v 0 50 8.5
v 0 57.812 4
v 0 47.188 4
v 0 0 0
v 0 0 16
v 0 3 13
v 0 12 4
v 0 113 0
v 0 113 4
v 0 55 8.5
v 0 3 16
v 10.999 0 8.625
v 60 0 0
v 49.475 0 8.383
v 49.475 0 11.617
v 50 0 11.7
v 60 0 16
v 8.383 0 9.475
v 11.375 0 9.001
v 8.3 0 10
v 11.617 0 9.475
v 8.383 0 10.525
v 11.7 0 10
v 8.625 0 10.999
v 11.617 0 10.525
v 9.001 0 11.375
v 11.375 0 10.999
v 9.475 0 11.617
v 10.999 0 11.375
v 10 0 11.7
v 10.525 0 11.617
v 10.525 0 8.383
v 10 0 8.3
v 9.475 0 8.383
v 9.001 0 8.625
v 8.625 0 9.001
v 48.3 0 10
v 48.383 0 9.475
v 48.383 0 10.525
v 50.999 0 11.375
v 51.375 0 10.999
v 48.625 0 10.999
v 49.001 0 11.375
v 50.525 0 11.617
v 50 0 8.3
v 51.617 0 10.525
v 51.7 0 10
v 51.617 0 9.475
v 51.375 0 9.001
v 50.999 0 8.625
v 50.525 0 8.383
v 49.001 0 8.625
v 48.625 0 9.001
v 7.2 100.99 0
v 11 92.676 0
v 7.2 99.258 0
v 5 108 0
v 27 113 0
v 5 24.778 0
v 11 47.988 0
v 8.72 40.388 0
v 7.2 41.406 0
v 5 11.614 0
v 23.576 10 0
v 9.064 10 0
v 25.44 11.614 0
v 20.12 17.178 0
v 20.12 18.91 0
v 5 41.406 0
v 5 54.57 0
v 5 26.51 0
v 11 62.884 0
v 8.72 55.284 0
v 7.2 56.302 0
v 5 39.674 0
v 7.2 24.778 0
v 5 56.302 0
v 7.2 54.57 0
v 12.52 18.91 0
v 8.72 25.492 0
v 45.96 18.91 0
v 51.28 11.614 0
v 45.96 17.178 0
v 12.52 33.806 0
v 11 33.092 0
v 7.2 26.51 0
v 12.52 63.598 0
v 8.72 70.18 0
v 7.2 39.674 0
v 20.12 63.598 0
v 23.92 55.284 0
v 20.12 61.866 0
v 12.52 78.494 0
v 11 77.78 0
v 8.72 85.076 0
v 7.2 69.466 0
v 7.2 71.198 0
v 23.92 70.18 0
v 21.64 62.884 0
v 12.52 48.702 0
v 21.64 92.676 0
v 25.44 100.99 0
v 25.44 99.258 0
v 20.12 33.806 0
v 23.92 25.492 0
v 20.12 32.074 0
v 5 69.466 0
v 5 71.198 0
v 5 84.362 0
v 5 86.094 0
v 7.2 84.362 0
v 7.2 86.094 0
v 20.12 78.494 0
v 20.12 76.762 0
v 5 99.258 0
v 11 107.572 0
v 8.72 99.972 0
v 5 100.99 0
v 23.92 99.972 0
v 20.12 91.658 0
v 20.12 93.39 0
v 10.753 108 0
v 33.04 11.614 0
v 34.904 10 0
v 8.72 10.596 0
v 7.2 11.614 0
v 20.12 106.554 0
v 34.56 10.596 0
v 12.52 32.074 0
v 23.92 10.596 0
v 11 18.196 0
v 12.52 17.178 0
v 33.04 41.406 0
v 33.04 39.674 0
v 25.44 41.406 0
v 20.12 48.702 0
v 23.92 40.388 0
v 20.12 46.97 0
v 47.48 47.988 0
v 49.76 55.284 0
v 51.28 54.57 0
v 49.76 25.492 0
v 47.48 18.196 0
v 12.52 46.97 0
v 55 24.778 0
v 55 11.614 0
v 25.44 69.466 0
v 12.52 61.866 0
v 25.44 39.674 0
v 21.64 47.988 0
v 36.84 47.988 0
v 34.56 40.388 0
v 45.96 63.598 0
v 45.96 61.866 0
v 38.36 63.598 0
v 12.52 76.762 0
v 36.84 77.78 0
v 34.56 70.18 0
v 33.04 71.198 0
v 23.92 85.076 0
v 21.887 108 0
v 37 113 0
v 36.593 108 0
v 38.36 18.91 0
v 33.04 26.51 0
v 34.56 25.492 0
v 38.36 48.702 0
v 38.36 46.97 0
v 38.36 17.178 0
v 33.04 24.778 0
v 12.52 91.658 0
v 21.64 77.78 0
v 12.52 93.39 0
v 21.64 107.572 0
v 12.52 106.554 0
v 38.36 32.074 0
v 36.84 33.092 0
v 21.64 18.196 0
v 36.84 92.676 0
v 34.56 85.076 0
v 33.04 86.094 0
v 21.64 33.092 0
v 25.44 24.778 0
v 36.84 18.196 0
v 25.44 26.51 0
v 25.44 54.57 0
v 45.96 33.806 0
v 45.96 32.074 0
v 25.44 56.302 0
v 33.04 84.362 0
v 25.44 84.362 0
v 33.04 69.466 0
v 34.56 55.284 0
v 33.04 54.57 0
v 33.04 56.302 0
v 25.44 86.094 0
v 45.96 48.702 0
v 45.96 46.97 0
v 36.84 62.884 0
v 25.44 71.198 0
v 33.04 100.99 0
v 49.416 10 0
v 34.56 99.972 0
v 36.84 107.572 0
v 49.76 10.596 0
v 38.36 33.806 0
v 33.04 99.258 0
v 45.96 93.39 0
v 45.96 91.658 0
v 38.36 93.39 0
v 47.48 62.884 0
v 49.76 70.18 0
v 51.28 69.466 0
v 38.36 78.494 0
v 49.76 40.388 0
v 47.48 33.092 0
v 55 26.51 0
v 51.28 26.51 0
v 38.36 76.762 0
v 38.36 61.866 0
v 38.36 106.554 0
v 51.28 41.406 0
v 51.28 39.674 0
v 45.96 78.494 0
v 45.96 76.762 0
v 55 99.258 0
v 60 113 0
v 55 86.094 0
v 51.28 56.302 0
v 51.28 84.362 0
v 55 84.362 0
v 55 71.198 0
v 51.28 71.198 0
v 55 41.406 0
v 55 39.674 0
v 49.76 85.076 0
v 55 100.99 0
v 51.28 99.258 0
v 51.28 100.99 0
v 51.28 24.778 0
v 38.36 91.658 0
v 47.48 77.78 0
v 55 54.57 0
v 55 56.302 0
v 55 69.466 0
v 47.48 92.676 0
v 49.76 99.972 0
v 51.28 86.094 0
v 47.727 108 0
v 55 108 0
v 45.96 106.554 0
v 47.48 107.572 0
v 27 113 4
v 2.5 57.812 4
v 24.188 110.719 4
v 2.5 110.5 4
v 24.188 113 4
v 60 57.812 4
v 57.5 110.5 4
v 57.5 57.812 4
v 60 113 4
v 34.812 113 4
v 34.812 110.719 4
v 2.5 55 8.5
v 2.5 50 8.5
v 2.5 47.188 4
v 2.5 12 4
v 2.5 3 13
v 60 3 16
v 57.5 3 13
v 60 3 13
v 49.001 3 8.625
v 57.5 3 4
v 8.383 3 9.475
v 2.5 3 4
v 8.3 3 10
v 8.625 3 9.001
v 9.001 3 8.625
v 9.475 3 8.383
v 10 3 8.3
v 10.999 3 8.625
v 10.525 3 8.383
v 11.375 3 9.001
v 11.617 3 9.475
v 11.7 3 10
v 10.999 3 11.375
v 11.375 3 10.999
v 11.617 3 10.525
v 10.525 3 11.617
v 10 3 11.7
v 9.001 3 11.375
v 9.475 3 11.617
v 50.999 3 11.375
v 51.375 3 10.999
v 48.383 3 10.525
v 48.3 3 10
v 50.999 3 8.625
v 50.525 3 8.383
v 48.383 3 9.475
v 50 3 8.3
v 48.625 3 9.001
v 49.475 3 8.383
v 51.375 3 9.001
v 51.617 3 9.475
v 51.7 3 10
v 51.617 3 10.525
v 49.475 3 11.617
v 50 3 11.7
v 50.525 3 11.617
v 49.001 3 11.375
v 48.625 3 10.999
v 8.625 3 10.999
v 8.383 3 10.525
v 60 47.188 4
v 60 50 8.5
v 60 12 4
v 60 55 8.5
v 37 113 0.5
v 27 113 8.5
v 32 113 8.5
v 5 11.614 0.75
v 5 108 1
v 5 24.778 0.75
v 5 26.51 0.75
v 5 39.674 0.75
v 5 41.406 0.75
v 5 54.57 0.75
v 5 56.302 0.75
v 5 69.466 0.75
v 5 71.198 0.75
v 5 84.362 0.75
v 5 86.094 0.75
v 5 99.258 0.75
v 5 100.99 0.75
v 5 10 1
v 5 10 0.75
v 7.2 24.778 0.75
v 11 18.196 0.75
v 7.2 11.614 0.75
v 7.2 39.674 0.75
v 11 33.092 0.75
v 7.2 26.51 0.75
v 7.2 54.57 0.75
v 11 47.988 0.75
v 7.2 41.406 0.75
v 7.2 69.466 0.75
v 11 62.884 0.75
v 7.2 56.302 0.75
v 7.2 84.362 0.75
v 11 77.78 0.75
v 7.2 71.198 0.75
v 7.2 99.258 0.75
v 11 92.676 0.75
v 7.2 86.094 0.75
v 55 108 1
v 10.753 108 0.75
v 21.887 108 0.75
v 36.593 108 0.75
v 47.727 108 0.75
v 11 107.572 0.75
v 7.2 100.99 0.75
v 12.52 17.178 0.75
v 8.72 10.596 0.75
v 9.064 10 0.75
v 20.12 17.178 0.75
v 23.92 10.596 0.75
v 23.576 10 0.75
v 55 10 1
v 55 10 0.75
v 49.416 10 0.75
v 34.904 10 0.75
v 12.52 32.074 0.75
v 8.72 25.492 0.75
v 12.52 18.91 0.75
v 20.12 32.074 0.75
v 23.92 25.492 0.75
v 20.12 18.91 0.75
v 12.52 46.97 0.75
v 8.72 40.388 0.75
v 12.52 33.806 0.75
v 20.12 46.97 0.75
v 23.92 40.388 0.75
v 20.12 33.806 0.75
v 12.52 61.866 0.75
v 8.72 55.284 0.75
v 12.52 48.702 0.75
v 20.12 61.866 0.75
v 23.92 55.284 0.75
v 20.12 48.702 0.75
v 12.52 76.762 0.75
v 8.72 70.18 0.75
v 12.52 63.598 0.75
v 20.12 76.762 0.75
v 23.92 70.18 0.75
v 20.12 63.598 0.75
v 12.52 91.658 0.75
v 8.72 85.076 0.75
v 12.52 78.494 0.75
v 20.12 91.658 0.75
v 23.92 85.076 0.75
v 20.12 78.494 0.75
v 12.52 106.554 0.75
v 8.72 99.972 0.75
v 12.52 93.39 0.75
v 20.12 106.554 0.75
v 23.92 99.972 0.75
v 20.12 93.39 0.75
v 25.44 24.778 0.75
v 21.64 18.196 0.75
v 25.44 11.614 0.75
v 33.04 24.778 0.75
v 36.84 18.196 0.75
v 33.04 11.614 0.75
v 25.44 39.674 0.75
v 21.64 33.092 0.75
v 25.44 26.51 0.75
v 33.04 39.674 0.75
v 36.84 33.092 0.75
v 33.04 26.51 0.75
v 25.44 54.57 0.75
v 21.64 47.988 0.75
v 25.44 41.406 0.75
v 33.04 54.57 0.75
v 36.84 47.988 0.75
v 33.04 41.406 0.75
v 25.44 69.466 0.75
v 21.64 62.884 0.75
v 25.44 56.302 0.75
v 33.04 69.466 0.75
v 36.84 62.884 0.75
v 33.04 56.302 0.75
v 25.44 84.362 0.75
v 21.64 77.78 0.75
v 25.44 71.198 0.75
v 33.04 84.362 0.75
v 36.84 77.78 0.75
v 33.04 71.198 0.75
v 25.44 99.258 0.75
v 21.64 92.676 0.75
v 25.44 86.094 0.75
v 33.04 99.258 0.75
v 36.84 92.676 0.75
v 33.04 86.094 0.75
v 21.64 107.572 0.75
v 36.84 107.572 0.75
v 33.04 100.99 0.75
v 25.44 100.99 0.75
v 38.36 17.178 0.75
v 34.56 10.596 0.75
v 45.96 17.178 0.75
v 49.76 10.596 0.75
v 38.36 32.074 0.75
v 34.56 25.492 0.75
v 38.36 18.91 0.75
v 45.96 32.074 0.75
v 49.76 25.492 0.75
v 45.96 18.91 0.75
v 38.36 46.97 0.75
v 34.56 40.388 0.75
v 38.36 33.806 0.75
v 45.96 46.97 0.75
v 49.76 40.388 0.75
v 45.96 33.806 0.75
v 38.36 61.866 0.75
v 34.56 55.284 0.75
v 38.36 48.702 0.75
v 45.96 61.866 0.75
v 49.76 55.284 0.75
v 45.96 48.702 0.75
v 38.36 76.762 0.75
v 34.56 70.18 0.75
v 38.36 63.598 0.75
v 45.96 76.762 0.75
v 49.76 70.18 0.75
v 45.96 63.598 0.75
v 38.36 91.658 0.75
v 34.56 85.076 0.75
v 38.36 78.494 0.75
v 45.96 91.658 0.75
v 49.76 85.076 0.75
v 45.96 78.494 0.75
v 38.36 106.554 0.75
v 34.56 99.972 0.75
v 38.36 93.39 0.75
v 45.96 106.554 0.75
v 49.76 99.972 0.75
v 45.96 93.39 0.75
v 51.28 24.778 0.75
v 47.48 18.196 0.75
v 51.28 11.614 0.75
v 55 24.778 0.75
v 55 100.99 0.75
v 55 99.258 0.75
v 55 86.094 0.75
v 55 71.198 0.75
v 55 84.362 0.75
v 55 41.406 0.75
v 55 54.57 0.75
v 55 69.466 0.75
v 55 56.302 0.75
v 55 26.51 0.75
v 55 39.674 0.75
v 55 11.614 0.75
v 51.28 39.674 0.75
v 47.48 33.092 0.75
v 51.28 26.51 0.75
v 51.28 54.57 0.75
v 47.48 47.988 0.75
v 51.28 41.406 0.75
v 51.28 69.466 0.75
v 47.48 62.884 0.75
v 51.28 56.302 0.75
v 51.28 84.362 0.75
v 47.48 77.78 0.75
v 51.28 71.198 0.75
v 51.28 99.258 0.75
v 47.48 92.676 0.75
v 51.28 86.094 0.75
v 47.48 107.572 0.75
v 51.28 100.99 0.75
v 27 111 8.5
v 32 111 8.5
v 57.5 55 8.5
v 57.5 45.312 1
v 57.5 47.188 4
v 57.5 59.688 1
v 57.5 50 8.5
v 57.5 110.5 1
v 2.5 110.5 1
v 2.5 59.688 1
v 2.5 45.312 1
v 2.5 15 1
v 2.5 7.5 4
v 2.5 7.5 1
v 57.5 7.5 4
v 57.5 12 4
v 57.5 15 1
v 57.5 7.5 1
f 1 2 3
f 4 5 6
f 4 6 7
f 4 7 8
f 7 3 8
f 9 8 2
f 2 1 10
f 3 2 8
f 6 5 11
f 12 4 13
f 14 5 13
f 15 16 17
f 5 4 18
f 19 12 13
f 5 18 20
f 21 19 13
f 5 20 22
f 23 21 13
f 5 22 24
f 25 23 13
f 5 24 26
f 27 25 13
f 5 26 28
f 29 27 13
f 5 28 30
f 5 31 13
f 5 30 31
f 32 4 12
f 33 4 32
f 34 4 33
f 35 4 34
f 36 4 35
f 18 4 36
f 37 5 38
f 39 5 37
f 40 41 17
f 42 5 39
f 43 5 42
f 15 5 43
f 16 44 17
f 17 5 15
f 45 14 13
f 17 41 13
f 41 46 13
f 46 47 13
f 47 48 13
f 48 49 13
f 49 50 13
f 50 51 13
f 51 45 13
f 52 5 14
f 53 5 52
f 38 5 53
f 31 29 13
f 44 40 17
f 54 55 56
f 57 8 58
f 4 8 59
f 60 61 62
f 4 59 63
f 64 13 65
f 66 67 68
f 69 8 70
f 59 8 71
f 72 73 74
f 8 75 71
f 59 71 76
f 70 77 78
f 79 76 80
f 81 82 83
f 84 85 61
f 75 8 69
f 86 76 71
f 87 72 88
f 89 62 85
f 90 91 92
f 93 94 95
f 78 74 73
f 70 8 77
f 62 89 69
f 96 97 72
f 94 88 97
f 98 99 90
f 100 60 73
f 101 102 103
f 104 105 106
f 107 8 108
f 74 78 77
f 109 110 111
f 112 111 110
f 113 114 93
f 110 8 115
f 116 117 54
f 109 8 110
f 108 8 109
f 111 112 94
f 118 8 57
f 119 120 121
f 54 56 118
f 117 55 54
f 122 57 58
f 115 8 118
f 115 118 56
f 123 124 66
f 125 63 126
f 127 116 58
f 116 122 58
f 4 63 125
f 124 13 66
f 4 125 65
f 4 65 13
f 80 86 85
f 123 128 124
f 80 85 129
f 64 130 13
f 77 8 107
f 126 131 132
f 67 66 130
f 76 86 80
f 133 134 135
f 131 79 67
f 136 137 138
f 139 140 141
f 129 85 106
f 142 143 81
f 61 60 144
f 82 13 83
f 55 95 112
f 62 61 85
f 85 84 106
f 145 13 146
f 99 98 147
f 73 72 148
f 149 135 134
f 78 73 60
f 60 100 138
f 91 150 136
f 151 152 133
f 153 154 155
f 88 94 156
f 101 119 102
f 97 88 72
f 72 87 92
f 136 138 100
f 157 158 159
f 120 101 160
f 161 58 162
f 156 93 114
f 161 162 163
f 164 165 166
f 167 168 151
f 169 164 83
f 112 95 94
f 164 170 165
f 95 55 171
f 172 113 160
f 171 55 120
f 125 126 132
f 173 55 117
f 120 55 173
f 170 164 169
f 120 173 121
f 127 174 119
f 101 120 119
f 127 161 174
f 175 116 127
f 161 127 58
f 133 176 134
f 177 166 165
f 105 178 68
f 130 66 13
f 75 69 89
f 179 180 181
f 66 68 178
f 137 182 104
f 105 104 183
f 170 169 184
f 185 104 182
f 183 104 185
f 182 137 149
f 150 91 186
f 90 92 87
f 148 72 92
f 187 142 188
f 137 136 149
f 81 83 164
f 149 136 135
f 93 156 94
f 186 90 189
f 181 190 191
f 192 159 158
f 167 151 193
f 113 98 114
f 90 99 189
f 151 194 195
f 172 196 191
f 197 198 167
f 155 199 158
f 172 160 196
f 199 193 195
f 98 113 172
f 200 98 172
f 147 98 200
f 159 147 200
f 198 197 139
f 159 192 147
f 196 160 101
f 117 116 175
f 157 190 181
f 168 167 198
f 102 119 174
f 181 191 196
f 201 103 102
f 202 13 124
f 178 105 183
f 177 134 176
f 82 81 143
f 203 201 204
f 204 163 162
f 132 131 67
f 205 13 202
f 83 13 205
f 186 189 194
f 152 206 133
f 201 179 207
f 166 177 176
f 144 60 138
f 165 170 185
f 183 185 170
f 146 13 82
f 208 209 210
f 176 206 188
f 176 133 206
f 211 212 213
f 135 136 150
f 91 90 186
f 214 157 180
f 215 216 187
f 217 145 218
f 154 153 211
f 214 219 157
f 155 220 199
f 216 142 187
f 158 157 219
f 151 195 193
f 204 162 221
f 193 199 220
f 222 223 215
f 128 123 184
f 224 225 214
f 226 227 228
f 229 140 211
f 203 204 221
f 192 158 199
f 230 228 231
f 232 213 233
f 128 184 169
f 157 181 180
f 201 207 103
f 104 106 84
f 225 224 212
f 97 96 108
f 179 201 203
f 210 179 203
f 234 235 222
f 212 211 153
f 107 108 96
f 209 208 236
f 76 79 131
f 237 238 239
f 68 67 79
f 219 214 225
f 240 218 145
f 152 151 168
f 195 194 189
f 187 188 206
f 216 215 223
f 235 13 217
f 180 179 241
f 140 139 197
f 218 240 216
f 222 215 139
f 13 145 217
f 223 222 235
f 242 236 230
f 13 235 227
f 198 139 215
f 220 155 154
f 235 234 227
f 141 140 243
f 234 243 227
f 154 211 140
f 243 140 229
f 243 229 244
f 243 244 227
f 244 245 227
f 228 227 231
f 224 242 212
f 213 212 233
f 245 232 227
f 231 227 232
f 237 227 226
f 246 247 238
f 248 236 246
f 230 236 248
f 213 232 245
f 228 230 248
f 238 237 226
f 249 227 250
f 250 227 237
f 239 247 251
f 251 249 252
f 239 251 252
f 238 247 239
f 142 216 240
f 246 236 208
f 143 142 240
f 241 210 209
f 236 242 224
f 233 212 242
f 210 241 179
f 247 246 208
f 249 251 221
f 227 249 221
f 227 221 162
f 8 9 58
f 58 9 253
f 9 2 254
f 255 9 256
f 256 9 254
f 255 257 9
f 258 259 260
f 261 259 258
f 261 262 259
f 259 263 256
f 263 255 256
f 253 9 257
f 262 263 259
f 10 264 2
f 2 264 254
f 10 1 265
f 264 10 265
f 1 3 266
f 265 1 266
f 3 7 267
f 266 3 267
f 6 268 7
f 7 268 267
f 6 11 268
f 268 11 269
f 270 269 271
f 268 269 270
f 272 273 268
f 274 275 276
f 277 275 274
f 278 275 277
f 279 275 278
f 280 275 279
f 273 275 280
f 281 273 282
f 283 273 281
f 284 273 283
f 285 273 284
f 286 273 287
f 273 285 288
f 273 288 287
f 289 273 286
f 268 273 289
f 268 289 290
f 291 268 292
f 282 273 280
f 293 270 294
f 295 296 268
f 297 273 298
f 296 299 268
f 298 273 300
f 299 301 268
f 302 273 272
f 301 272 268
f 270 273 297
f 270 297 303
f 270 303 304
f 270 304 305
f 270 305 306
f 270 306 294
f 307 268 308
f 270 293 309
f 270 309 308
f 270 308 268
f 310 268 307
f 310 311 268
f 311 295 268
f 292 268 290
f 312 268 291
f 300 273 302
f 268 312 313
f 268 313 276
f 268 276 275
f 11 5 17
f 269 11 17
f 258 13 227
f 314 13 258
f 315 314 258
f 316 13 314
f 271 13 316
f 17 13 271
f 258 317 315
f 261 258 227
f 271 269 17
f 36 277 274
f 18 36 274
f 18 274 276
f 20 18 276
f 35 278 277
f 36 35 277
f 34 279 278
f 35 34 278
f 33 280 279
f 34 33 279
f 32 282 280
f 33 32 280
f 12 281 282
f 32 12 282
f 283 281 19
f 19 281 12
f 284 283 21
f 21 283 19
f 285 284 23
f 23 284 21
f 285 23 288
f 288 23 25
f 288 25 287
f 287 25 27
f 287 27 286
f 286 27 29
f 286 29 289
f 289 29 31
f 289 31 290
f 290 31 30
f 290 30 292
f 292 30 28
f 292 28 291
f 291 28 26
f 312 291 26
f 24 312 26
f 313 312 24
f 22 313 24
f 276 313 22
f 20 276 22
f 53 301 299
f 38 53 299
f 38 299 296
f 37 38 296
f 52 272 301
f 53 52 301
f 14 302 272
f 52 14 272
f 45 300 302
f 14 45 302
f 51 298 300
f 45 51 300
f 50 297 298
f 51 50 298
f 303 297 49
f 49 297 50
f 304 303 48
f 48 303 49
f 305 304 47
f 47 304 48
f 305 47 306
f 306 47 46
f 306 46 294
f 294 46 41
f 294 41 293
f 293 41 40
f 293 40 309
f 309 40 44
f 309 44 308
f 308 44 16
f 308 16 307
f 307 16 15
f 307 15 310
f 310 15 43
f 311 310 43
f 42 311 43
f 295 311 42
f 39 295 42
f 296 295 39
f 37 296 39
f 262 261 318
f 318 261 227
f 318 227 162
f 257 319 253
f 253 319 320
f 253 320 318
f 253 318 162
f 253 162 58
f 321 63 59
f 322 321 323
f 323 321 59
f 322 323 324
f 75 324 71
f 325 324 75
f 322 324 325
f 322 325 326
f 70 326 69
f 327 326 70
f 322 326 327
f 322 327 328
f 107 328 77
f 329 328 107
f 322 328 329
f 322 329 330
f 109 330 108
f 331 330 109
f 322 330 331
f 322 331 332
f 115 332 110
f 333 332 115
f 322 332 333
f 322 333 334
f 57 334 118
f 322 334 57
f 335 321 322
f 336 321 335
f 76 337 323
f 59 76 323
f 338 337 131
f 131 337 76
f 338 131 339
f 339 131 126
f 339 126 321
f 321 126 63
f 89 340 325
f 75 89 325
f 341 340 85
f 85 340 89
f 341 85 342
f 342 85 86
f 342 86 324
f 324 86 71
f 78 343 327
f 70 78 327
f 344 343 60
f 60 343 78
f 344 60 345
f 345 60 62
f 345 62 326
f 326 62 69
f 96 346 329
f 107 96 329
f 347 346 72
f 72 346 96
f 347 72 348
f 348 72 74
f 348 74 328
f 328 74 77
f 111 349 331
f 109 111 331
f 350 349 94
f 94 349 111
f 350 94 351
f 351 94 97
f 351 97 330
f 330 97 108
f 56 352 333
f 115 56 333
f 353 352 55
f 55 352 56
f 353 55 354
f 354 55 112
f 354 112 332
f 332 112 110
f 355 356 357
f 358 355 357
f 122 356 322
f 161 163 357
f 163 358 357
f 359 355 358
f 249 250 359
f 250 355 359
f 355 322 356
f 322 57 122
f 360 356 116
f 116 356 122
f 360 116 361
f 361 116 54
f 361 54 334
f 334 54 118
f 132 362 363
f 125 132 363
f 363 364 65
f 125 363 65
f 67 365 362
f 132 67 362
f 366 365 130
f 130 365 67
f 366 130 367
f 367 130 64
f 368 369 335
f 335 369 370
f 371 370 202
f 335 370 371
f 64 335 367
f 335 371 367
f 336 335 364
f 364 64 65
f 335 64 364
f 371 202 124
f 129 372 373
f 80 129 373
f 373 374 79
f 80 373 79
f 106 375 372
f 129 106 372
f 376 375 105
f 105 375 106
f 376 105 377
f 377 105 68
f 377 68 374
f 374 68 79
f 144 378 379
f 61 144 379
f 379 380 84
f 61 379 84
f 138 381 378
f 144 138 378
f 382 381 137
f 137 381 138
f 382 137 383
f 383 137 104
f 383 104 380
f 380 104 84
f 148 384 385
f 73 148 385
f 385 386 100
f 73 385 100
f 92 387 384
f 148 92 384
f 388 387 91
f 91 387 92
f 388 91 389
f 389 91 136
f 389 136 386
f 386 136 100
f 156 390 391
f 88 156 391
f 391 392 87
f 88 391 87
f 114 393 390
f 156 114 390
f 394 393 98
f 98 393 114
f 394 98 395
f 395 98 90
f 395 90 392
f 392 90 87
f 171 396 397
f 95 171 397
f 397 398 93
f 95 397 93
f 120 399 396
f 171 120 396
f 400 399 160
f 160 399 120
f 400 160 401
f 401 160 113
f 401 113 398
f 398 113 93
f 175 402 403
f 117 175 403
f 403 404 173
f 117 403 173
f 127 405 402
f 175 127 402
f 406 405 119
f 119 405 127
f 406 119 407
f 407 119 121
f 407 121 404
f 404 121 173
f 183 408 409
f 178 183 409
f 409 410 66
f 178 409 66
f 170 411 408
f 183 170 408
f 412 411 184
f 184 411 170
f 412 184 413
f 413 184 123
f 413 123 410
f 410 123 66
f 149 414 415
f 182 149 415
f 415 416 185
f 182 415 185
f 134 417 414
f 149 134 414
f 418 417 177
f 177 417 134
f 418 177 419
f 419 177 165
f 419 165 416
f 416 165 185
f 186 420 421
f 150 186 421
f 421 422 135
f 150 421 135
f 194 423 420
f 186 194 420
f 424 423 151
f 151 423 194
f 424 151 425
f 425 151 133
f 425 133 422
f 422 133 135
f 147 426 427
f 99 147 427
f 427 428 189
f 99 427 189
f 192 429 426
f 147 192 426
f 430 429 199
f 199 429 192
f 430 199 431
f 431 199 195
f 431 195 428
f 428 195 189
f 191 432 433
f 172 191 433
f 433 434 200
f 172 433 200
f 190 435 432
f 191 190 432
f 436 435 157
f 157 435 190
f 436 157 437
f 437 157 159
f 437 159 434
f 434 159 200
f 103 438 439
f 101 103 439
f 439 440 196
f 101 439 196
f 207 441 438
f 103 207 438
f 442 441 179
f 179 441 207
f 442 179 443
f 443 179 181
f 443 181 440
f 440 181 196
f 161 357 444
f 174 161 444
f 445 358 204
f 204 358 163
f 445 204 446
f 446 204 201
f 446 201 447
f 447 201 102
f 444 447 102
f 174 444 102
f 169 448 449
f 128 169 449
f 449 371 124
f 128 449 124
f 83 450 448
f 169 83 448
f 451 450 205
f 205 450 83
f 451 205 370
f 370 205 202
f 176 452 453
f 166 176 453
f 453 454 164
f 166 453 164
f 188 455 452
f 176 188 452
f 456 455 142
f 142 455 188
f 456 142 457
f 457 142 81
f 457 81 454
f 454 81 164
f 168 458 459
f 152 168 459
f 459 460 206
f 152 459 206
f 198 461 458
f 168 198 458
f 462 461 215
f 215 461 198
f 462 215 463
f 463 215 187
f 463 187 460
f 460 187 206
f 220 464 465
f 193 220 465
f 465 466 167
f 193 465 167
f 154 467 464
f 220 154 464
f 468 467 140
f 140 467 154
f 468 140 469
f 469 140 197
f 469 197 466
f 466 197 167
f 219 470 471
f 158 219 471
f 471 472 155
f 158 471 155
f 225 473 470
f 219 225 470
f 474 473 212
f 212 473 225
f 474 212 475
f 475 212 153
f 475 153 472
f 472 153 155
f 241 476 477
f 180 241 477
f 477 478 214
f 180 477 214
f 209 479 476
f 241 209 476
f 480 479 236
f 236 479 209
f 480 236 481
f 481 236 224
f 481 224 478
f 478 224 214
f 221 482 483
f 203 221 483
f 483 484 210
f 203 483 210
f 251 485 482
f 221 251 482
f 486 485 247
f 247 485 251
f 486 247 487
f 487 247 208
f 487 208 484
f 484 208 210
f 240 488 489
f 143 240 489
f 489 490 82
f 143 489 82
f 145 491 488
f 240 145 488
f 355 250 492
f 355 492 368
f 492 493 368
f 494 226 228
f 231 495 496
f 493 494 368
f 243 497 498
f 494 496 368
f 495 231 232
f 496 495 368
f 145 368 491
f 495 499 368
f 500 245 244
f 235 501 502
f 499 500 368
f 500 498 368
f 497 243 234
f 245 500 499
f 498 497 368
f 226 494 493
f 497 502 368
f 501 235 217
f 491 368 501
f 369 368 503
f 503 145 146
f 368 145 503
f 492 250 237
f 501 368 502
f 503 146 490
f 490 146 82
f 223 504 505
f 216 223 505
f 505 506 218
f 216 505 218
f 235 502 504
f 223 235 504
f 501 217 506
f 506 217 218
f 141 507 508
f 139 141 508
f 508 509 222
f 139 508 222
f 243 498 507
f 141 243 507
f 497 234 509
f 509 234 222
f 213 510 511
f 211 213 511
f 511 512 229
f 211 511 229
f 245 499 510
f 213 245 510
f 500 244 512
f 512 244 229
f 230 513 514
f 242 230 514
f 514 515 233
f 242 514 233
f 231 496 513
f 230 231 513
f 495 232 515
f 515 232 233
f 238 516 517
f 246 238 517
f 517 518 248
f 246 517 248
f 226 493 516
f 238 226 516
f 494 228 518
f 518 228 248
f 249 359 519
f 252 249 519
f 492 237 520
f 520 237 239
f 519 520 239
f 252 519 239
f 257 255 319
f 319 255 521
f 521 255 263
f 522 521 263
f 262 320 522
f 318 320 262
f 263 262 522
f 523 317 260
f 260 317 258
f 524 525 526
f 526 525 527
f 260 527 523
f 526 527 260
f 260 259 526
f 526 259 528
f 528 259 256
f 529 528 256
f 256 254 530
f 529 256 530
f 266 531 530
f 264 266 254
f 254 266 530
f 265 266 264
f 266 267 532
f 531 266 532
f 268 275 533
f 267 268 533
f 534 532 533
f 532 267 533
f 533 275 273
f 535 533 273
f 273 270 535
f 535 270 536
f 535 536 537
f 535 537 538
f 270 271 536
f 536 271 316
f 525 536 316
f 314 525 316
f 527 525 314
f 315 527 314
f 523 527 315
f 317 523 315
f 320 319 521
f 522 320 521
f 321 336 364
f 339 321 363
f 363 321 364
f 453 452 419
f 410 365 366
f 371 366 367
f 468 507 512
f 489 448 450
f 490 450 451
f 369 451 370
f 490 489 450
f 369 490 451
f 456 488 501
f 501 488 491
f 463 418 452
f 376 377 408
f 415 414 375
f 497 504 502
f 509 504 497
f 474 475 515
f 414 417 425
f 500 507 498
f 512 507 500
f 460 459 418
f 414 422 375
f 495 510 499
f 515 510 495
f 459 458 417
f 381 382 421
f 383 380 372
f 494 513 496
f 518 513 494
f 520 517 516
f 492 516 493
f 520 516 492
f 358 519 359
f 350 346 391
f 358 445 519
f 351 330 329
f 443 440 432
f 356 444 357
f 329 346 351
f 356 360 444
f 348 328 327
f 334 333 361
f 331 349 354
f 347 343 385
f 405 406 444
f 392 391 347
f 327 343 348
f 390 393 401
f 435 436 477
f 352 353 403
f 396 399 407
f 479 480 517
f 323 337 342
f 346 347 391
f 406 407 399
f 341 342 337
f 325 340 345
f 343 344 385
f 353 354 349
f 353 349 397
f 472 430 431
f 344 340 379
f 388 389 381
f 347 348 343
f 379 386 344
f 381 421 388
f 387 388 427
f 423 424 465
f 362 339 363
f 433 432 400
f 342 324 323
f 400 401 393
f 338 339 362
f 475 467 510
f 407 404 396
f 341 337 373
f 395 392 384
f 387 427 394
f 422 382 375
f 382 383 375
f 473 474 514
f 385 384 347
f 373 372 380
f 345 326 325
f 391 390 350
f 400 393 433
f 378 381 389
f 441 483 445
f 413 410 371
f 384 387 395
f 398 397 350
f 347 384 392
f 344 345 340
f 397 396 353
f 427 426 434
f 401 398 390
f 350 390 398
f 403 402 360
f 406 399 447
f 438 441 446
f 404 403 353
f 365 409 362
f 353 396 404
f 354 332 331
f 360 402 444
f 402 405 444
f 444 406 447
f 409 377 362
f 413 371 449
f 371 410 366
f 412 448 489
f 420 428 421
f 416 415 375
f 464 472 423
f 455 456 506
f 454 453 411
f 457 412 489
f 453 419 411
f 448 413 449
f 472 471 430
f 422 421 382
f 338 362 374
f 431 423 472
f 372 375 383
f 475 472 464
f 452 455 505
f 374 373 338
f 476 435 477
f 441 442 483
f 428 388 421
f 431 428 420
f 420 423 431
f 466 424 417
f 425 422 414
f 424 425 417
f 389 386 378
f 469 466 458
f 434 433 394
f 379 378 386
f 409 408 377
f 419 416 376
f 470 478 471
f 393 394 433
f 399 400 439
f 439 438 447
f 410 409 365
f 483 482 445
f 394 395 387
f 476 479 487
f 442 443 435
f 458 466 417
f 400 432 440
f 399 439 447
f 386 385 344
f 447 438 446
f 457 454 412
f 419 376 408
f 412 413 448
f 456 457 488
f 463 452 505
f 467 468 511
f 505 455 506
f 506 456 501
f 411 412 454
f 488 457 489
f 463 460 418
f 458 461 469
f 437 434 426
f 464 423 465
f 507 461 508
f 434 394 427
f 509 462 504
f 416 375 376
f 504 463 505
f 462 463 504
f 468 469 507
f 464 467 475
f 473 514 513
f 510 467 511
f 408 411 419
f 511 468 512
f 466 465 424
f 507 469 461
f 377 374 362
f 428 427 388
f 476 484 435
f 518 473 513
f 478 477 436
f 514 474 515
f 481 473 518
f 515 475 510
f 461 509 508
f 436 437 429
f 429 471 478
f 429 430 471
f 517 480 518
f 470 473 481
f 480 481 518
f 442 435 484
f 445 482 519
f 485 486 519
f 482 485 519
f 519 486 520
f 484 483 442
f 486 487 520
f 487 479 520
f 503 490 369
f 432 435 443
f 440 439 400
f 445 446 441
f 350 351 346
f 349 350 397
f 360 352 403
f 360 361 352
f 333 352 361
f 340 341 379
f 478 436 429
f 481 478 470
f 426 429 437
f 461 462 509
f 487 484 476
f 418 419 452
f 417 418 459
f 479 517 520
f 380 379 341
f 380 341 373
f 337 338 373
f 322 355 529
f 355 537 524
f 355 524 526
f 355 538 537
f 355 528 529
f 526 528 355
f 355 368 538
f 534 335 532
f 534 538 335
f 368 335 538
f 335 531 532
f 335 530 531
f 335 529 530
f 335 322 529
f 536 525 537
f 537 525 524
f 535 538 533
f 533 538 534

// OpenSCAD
$fn=20;

module beehome (w,l,h,s){
difference (){
		cube([w,l,h]);
#	translate([(w%s)/2,(l%s)/2,0]){
		for ( j = [0 : s*1.96 : l] )	{
			for ( i = [0 : s*3.4 : w] )	{
				translate([i,j,0])cylinder (h,s,s,$fn=6);
				translate([i+s*1.7,j+s*0.96,0])cylinder (h,s,s,$fn=6);
			}
		}		
	}
}
}


module arm (){
	hull() {
		cube ([2.5,1,15]);
		cube ([2.5,15,1]);
	}
}

module arduino() {
 difference () {
		cube ([54,102,2]);
		translate ([2.5,15,0]) cylinder(10,1.5,1.5);
		translate ([2.5,90,0]) cylinder(10,1.5,1.5);
		translate ([18,46,0]) cylinder(10,1.5,1.5);
		translate ([46,46,0]) cylinder(10,1.5,1.5);
		translate ([51,15,0]) cylinder(10,1.5,1.5);
		translate ([51,96,0]) cylinder(10,1.5,1.5);
	}
}




difference () {
	cube ([60,3,16]);
#	translate([10,-1,10])rotate([-90,0,0]) cylinder(5,1.7,1.7);
#	translate([50,-1,10])rotate([-90,0,0]) cylinder(5,1.7,1.7);
}


translate ([0,0,0])arm ();
translate ([57.5,0,0])arm ();

difference () {
	cube ([60,113,4]);
#	translate([2.5,7.5,1])cube ([55,103,4]);
	translate([5,10,0])cube ([50,98,4]);
}
//conner
#translate ([0,50,0])hull() {
		translate([0,-5,0])cube ([2.5,15,0.5]);
		translate([0,0,8])cube ([2.5,5,0.5]);
}
#translate ([57.5,50,0])hull() {
		translate([0,-5,0])cube ([2.5,15,0.5]);
		translate([0,0,8])cube ([2.5,5,0.5]);
}
translate ([27,113,0])rotate([0,0,-90])hull() {
		translate([0,-5,0])cube ([2.5,15,0.5]);
		translate([0,0,8])cube ([2,5,0.5]);
}


//bottom beehome
beehome (60,113,0.75,7.6);



// color ("green")translate([3,8,4])  arduino();
